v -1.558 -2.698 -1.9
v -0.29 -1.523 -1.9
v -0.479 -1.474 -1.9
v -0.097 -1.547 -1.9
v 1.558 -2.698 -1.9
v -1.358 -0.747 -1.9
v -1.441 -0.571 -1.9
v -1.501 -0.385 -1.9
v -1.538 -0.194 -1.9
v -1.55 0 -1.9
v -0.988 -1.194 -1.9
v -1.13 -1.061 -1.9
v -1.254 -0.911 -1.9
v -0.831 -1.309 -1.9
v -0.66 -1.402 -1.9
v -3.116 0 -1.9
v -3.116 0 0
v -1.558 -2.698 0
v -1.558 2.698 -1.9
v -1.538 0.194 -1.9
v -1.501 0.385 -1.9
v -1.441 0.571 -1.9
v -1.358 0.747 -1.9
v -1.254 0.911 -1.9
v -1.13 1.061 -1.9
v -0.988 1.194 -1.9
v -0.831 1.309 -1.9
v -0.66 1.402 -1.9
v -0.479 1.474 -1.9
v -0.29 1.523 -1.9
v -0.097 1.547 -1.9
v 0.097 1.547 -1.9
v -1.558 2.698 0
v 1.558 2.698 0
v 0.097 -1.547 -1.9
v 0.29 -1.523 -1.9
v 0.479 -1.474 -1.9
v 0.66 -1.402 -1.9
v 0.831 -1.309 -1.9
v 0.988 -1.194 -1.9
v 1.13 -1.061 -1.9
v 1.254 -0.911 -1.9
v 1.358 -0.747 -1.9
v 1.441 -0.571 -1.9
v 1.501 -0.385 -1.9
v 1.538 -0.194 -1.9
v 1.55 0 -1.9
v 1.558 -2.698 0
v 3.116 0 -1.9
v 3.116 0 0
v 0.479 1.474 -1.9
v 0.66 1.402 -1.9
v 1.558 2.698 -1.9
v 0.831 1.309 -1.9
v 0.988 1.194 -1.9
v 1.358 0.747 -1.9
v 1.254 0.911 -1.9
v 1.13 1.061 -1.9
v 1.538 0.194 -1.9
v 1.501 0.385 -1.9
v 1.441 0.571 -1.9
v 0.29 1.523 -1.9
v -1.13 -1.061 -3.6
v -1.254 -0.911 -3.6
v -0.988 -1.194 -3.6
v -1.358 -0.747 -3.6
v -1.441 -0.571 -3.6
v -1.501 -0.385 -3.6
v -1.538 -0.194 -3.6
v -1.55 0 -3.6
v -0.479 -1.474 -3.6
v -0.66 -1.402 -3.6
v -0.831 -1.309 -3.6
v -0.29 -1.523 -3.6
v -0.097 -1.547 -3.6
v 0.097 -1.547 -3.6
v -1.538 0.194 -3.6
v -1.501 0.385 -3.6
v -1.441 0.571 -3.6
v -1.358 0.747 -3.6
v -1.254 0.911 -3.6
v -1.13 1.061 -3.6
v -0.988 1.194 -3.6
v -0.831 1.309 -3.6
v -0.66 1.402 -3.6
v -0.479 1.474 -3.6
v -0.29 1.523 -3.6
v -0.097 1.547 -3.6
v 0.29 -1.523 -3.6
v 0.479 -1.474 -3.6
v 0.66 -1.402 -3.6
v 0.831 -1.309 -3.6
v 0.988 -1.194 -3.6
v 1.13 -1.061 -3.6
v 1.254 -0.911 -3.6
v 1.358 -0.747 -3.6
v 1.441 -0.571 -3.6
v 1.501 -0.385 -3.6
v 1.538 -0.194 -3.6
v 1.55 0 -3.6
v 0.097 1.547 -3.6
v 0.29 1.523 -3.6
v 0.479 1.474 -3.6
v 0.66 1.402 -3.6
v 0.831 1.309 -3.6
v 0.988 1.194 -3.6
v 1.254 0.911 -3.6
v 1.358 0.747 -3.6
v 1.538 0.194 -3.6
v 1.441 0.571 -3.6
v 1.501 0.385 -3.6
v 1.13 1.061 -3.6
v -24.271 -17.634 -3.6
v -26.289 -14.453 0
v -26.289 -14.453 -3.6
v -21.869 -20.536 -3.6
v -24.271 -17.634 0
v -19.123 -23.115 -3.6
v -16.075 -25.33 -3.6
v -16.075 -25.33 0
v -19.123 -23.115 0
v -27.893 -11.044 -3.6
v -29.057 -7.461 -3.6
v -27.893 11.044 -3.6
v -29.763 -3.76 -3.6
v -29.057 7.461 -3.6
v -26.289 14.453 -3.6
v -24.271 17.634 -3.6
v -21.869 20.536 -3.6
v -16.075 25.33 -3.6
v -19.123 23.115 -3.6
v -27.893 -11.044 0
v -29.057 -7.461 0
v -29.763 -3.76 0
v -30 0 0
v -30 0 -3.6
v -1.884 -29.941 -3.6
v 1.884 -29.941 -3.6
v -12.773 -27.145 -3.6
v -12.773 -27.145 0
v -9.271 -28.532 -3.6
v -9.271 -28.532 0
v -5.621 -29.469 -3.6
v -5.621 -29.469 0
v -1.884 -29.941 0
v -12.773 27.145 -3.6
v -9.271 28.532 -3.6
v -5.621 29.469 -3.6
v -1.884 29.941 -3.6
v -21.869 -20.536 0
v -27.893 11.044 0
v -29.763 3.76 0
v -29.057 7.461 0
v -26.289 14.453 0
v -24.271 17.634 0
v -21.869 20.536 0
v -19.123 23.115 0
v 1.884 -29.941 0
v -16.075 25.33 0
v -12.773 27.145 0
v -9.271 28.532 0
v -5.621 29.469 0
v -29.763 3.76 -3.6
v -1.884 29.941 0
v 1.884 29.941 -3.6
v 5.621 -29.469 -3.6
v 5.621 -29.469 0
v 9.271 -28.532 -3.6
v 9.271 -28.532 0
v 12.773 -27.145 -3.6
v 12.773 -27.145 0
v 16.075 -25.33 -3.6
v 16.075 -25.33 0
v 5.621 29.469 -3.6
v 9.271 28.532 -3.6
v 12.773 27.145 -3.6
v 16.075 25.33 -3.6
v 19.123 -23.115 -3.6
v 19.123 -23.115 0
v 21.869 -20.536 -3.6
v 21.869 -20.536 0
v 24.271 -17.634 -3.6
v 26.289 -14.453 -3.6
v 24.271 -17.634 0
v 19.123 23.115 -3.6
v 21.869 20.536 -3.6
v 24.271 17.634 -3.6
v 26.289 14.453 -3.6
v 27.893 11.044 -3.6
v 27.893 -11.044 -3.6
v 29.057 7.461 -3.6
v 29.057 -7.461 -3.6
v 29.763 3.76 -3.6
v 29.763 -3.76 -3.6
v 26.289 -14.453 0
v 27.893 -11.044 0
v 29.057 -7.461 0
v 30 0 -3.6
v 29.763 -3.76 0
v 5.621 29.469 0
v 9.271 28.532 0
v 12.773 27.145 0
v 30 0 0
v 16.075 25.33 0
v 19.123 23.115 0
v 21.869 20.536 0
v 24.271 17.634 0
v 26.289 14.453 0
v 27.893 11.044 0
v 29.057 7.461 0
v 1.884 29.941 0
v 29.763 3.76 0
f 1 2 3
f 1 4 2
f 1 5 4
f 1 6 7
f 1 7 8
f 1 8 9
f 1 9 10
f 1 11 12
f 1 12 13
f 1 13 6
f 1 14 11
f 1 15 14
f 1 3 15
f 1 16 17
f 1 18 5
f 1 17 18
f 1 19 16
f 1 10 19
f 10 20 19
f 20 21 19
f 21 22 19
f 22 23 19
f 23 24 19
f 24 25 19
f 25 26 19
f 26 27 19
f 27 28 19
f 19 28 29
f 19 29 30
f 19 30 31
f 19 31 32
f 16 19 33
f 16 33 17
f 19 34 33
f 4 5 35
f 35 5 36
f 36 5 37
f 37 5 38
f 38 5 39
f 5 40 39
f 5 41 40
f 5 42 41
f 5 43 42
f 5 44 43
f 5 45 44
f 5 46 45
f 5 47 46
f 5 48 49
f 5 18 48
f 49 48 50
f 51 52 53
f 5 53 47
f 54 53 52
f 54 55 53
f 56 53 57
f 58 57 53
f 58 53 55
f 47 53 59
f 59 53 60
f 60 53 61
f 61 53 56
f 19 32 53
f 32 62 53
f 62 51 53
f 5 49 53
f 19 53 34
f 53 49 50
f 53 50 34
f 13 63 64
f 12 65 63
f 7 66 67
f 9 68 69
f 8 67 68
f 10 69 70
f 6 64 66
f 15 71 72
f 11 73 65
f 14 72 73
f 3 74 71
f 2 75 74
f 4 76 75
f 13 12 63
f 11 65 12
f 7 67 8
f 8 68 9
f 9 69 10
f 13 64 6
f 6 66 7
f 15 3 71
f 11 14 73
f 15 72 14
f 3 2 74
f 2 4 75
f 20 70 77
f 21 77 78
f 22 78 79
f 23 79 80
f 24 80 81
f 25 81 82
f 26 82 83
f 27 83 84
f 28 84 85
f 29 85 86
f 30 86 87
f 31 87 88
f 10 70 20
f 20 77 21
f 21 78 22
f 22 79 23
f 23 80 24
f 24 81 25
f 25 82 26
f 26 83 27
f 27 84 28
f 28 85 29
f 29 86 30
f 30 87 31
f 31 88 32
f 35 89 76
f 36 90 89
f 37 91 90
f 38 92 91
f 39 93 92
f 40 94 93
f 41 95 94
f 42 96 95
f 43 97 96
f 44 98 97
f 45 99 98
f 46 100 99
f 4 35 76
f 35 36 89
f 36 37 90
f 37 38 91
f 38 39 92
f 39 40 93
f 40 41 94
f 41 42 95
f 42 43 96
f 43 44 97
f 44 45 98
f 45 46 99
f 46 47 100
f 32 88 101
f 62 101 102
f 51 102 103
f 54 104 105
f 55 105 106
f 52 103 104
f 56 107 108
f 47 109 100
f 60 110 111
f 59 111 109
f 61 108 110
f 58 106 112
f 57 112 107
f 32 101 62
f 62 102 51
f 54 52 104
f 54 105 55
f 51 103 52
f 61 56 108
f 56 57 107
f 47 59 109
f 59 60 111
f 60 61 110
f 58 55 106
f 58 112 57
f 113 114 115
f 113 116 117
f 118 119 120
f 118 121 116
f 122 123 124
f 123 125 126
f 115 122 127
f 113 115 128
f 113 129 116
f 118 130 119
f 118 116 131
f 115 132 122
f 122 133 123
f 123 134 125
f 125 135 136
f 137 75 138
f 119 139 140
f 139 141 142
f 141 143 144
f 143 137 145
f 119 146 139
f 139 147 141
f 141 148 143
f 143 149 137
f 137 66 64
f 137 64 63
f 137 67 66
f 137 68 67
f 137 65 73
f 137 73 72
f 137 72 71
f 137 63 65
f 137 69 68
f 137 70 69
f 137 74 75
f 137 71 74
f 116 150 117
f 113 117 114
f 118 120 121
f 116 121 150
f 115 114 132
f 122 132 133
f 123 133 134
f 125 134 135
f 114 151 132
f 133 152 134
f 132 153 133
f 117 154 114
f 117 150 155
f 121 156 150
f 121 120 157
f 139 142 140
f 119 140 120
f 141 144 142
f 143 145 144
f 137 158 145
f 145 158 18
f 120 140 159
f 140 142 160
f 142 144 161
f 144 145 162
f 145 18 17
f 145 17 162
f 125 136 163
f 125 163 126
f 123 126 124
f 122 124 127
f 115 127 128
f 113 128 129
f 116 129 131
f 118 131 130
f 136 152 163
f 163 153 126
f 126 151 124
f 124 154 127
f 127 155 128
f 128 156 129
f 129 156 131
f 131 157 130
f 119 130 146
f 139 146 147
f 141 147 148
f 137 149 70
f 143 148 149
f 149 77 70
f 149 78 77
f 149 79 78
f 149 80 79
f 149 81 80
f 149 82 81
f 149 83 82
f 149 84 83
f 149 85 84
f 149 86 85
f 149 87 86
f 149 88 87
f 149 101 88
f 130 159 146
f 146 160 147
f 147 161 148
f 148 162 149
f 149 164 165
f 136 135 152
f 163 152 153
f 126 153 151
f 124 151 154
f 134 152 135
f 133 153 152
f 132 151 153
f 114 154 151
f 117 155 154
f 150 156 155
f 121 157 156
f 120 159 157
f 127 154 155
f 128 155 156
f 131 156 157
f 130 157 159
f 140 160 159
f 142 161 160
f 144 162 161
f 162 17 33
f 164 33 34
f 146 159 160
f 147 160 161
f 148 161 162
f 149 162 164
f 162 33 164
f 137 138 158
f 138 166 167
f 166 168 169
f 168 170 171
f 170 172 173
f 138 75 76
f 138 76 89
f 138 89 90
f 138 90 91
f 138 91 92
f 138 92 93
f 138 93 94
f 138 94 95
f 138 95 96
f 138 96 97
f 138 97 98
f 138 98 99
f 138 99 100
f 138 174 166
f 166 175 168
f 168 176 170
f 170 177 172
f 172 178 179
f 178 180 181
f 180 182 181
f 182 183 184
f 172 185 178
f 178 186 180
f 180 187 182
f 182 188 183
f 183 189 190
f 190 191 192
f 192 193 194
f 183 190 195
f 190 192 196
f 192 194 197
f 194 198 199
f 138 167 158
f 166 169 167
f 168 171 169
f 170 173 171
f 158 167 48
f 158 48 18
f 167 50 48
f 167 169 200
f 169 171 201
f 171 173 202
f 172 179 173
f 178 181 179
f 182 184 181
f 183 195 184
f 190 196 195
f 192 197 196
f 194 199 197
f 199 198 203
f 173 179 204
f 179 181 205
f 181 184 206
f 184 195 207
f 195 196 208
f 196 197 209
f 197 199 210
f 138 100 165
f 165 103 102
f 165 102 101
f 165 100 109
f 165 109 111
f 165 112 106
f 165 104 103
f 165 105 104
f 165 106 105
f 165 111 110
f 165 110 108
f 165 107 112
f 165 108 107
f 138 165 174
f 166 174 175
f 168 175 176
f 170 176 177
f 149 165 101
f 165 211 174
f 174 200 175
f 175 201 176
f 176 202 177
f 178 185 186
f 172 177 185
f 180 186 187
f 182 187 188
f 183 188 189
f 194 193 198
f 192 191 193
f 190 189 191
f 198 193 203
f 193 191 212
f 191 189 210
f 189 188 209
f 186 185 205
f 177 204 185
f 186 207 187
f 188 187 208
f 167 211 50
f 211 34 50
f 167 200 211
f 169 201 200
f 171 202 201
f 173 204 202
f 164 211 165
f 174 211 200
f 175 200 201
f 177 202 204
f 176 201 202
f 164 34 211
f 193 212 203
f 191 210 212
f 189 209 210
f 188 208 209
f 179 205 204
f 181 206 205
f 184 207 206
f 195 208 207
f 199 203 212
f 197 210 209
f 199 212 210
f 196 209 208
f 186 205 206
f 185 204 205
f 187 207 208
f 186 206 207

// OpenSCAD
$fn = 50;

difference() {
	union() {
		translate(v = [0, 0, -3.6]) {
			cylinder(h = 3.6, r = 30.0);
		}
	}
	union() {
		translate(v = [0, 0, 0]) {
			rotate(a = [0, 0, 0]) {
				difference() {
					union() {
						translate(v = [0, 0, -1.9]) {
							linear_extrude(height = 1.9) {
								polygon(points = [[3.1158, 0.0], [1.5579000000000005, 2.698361953111554], [-1.5578999999999994, 2.6983619531115544], [-3.1158, 3.815754496783323e-16], [-1.5579000000000014, -2.6983619531115535], [1.557899999999998, -2.6983619531115552]]);
							}
						}
					}
					union();
				}
			}
		}
		#translate(v = [0, 0, -100.0]) {
			cylinder(h = 200, r = 1.55);
		}
	}
}
